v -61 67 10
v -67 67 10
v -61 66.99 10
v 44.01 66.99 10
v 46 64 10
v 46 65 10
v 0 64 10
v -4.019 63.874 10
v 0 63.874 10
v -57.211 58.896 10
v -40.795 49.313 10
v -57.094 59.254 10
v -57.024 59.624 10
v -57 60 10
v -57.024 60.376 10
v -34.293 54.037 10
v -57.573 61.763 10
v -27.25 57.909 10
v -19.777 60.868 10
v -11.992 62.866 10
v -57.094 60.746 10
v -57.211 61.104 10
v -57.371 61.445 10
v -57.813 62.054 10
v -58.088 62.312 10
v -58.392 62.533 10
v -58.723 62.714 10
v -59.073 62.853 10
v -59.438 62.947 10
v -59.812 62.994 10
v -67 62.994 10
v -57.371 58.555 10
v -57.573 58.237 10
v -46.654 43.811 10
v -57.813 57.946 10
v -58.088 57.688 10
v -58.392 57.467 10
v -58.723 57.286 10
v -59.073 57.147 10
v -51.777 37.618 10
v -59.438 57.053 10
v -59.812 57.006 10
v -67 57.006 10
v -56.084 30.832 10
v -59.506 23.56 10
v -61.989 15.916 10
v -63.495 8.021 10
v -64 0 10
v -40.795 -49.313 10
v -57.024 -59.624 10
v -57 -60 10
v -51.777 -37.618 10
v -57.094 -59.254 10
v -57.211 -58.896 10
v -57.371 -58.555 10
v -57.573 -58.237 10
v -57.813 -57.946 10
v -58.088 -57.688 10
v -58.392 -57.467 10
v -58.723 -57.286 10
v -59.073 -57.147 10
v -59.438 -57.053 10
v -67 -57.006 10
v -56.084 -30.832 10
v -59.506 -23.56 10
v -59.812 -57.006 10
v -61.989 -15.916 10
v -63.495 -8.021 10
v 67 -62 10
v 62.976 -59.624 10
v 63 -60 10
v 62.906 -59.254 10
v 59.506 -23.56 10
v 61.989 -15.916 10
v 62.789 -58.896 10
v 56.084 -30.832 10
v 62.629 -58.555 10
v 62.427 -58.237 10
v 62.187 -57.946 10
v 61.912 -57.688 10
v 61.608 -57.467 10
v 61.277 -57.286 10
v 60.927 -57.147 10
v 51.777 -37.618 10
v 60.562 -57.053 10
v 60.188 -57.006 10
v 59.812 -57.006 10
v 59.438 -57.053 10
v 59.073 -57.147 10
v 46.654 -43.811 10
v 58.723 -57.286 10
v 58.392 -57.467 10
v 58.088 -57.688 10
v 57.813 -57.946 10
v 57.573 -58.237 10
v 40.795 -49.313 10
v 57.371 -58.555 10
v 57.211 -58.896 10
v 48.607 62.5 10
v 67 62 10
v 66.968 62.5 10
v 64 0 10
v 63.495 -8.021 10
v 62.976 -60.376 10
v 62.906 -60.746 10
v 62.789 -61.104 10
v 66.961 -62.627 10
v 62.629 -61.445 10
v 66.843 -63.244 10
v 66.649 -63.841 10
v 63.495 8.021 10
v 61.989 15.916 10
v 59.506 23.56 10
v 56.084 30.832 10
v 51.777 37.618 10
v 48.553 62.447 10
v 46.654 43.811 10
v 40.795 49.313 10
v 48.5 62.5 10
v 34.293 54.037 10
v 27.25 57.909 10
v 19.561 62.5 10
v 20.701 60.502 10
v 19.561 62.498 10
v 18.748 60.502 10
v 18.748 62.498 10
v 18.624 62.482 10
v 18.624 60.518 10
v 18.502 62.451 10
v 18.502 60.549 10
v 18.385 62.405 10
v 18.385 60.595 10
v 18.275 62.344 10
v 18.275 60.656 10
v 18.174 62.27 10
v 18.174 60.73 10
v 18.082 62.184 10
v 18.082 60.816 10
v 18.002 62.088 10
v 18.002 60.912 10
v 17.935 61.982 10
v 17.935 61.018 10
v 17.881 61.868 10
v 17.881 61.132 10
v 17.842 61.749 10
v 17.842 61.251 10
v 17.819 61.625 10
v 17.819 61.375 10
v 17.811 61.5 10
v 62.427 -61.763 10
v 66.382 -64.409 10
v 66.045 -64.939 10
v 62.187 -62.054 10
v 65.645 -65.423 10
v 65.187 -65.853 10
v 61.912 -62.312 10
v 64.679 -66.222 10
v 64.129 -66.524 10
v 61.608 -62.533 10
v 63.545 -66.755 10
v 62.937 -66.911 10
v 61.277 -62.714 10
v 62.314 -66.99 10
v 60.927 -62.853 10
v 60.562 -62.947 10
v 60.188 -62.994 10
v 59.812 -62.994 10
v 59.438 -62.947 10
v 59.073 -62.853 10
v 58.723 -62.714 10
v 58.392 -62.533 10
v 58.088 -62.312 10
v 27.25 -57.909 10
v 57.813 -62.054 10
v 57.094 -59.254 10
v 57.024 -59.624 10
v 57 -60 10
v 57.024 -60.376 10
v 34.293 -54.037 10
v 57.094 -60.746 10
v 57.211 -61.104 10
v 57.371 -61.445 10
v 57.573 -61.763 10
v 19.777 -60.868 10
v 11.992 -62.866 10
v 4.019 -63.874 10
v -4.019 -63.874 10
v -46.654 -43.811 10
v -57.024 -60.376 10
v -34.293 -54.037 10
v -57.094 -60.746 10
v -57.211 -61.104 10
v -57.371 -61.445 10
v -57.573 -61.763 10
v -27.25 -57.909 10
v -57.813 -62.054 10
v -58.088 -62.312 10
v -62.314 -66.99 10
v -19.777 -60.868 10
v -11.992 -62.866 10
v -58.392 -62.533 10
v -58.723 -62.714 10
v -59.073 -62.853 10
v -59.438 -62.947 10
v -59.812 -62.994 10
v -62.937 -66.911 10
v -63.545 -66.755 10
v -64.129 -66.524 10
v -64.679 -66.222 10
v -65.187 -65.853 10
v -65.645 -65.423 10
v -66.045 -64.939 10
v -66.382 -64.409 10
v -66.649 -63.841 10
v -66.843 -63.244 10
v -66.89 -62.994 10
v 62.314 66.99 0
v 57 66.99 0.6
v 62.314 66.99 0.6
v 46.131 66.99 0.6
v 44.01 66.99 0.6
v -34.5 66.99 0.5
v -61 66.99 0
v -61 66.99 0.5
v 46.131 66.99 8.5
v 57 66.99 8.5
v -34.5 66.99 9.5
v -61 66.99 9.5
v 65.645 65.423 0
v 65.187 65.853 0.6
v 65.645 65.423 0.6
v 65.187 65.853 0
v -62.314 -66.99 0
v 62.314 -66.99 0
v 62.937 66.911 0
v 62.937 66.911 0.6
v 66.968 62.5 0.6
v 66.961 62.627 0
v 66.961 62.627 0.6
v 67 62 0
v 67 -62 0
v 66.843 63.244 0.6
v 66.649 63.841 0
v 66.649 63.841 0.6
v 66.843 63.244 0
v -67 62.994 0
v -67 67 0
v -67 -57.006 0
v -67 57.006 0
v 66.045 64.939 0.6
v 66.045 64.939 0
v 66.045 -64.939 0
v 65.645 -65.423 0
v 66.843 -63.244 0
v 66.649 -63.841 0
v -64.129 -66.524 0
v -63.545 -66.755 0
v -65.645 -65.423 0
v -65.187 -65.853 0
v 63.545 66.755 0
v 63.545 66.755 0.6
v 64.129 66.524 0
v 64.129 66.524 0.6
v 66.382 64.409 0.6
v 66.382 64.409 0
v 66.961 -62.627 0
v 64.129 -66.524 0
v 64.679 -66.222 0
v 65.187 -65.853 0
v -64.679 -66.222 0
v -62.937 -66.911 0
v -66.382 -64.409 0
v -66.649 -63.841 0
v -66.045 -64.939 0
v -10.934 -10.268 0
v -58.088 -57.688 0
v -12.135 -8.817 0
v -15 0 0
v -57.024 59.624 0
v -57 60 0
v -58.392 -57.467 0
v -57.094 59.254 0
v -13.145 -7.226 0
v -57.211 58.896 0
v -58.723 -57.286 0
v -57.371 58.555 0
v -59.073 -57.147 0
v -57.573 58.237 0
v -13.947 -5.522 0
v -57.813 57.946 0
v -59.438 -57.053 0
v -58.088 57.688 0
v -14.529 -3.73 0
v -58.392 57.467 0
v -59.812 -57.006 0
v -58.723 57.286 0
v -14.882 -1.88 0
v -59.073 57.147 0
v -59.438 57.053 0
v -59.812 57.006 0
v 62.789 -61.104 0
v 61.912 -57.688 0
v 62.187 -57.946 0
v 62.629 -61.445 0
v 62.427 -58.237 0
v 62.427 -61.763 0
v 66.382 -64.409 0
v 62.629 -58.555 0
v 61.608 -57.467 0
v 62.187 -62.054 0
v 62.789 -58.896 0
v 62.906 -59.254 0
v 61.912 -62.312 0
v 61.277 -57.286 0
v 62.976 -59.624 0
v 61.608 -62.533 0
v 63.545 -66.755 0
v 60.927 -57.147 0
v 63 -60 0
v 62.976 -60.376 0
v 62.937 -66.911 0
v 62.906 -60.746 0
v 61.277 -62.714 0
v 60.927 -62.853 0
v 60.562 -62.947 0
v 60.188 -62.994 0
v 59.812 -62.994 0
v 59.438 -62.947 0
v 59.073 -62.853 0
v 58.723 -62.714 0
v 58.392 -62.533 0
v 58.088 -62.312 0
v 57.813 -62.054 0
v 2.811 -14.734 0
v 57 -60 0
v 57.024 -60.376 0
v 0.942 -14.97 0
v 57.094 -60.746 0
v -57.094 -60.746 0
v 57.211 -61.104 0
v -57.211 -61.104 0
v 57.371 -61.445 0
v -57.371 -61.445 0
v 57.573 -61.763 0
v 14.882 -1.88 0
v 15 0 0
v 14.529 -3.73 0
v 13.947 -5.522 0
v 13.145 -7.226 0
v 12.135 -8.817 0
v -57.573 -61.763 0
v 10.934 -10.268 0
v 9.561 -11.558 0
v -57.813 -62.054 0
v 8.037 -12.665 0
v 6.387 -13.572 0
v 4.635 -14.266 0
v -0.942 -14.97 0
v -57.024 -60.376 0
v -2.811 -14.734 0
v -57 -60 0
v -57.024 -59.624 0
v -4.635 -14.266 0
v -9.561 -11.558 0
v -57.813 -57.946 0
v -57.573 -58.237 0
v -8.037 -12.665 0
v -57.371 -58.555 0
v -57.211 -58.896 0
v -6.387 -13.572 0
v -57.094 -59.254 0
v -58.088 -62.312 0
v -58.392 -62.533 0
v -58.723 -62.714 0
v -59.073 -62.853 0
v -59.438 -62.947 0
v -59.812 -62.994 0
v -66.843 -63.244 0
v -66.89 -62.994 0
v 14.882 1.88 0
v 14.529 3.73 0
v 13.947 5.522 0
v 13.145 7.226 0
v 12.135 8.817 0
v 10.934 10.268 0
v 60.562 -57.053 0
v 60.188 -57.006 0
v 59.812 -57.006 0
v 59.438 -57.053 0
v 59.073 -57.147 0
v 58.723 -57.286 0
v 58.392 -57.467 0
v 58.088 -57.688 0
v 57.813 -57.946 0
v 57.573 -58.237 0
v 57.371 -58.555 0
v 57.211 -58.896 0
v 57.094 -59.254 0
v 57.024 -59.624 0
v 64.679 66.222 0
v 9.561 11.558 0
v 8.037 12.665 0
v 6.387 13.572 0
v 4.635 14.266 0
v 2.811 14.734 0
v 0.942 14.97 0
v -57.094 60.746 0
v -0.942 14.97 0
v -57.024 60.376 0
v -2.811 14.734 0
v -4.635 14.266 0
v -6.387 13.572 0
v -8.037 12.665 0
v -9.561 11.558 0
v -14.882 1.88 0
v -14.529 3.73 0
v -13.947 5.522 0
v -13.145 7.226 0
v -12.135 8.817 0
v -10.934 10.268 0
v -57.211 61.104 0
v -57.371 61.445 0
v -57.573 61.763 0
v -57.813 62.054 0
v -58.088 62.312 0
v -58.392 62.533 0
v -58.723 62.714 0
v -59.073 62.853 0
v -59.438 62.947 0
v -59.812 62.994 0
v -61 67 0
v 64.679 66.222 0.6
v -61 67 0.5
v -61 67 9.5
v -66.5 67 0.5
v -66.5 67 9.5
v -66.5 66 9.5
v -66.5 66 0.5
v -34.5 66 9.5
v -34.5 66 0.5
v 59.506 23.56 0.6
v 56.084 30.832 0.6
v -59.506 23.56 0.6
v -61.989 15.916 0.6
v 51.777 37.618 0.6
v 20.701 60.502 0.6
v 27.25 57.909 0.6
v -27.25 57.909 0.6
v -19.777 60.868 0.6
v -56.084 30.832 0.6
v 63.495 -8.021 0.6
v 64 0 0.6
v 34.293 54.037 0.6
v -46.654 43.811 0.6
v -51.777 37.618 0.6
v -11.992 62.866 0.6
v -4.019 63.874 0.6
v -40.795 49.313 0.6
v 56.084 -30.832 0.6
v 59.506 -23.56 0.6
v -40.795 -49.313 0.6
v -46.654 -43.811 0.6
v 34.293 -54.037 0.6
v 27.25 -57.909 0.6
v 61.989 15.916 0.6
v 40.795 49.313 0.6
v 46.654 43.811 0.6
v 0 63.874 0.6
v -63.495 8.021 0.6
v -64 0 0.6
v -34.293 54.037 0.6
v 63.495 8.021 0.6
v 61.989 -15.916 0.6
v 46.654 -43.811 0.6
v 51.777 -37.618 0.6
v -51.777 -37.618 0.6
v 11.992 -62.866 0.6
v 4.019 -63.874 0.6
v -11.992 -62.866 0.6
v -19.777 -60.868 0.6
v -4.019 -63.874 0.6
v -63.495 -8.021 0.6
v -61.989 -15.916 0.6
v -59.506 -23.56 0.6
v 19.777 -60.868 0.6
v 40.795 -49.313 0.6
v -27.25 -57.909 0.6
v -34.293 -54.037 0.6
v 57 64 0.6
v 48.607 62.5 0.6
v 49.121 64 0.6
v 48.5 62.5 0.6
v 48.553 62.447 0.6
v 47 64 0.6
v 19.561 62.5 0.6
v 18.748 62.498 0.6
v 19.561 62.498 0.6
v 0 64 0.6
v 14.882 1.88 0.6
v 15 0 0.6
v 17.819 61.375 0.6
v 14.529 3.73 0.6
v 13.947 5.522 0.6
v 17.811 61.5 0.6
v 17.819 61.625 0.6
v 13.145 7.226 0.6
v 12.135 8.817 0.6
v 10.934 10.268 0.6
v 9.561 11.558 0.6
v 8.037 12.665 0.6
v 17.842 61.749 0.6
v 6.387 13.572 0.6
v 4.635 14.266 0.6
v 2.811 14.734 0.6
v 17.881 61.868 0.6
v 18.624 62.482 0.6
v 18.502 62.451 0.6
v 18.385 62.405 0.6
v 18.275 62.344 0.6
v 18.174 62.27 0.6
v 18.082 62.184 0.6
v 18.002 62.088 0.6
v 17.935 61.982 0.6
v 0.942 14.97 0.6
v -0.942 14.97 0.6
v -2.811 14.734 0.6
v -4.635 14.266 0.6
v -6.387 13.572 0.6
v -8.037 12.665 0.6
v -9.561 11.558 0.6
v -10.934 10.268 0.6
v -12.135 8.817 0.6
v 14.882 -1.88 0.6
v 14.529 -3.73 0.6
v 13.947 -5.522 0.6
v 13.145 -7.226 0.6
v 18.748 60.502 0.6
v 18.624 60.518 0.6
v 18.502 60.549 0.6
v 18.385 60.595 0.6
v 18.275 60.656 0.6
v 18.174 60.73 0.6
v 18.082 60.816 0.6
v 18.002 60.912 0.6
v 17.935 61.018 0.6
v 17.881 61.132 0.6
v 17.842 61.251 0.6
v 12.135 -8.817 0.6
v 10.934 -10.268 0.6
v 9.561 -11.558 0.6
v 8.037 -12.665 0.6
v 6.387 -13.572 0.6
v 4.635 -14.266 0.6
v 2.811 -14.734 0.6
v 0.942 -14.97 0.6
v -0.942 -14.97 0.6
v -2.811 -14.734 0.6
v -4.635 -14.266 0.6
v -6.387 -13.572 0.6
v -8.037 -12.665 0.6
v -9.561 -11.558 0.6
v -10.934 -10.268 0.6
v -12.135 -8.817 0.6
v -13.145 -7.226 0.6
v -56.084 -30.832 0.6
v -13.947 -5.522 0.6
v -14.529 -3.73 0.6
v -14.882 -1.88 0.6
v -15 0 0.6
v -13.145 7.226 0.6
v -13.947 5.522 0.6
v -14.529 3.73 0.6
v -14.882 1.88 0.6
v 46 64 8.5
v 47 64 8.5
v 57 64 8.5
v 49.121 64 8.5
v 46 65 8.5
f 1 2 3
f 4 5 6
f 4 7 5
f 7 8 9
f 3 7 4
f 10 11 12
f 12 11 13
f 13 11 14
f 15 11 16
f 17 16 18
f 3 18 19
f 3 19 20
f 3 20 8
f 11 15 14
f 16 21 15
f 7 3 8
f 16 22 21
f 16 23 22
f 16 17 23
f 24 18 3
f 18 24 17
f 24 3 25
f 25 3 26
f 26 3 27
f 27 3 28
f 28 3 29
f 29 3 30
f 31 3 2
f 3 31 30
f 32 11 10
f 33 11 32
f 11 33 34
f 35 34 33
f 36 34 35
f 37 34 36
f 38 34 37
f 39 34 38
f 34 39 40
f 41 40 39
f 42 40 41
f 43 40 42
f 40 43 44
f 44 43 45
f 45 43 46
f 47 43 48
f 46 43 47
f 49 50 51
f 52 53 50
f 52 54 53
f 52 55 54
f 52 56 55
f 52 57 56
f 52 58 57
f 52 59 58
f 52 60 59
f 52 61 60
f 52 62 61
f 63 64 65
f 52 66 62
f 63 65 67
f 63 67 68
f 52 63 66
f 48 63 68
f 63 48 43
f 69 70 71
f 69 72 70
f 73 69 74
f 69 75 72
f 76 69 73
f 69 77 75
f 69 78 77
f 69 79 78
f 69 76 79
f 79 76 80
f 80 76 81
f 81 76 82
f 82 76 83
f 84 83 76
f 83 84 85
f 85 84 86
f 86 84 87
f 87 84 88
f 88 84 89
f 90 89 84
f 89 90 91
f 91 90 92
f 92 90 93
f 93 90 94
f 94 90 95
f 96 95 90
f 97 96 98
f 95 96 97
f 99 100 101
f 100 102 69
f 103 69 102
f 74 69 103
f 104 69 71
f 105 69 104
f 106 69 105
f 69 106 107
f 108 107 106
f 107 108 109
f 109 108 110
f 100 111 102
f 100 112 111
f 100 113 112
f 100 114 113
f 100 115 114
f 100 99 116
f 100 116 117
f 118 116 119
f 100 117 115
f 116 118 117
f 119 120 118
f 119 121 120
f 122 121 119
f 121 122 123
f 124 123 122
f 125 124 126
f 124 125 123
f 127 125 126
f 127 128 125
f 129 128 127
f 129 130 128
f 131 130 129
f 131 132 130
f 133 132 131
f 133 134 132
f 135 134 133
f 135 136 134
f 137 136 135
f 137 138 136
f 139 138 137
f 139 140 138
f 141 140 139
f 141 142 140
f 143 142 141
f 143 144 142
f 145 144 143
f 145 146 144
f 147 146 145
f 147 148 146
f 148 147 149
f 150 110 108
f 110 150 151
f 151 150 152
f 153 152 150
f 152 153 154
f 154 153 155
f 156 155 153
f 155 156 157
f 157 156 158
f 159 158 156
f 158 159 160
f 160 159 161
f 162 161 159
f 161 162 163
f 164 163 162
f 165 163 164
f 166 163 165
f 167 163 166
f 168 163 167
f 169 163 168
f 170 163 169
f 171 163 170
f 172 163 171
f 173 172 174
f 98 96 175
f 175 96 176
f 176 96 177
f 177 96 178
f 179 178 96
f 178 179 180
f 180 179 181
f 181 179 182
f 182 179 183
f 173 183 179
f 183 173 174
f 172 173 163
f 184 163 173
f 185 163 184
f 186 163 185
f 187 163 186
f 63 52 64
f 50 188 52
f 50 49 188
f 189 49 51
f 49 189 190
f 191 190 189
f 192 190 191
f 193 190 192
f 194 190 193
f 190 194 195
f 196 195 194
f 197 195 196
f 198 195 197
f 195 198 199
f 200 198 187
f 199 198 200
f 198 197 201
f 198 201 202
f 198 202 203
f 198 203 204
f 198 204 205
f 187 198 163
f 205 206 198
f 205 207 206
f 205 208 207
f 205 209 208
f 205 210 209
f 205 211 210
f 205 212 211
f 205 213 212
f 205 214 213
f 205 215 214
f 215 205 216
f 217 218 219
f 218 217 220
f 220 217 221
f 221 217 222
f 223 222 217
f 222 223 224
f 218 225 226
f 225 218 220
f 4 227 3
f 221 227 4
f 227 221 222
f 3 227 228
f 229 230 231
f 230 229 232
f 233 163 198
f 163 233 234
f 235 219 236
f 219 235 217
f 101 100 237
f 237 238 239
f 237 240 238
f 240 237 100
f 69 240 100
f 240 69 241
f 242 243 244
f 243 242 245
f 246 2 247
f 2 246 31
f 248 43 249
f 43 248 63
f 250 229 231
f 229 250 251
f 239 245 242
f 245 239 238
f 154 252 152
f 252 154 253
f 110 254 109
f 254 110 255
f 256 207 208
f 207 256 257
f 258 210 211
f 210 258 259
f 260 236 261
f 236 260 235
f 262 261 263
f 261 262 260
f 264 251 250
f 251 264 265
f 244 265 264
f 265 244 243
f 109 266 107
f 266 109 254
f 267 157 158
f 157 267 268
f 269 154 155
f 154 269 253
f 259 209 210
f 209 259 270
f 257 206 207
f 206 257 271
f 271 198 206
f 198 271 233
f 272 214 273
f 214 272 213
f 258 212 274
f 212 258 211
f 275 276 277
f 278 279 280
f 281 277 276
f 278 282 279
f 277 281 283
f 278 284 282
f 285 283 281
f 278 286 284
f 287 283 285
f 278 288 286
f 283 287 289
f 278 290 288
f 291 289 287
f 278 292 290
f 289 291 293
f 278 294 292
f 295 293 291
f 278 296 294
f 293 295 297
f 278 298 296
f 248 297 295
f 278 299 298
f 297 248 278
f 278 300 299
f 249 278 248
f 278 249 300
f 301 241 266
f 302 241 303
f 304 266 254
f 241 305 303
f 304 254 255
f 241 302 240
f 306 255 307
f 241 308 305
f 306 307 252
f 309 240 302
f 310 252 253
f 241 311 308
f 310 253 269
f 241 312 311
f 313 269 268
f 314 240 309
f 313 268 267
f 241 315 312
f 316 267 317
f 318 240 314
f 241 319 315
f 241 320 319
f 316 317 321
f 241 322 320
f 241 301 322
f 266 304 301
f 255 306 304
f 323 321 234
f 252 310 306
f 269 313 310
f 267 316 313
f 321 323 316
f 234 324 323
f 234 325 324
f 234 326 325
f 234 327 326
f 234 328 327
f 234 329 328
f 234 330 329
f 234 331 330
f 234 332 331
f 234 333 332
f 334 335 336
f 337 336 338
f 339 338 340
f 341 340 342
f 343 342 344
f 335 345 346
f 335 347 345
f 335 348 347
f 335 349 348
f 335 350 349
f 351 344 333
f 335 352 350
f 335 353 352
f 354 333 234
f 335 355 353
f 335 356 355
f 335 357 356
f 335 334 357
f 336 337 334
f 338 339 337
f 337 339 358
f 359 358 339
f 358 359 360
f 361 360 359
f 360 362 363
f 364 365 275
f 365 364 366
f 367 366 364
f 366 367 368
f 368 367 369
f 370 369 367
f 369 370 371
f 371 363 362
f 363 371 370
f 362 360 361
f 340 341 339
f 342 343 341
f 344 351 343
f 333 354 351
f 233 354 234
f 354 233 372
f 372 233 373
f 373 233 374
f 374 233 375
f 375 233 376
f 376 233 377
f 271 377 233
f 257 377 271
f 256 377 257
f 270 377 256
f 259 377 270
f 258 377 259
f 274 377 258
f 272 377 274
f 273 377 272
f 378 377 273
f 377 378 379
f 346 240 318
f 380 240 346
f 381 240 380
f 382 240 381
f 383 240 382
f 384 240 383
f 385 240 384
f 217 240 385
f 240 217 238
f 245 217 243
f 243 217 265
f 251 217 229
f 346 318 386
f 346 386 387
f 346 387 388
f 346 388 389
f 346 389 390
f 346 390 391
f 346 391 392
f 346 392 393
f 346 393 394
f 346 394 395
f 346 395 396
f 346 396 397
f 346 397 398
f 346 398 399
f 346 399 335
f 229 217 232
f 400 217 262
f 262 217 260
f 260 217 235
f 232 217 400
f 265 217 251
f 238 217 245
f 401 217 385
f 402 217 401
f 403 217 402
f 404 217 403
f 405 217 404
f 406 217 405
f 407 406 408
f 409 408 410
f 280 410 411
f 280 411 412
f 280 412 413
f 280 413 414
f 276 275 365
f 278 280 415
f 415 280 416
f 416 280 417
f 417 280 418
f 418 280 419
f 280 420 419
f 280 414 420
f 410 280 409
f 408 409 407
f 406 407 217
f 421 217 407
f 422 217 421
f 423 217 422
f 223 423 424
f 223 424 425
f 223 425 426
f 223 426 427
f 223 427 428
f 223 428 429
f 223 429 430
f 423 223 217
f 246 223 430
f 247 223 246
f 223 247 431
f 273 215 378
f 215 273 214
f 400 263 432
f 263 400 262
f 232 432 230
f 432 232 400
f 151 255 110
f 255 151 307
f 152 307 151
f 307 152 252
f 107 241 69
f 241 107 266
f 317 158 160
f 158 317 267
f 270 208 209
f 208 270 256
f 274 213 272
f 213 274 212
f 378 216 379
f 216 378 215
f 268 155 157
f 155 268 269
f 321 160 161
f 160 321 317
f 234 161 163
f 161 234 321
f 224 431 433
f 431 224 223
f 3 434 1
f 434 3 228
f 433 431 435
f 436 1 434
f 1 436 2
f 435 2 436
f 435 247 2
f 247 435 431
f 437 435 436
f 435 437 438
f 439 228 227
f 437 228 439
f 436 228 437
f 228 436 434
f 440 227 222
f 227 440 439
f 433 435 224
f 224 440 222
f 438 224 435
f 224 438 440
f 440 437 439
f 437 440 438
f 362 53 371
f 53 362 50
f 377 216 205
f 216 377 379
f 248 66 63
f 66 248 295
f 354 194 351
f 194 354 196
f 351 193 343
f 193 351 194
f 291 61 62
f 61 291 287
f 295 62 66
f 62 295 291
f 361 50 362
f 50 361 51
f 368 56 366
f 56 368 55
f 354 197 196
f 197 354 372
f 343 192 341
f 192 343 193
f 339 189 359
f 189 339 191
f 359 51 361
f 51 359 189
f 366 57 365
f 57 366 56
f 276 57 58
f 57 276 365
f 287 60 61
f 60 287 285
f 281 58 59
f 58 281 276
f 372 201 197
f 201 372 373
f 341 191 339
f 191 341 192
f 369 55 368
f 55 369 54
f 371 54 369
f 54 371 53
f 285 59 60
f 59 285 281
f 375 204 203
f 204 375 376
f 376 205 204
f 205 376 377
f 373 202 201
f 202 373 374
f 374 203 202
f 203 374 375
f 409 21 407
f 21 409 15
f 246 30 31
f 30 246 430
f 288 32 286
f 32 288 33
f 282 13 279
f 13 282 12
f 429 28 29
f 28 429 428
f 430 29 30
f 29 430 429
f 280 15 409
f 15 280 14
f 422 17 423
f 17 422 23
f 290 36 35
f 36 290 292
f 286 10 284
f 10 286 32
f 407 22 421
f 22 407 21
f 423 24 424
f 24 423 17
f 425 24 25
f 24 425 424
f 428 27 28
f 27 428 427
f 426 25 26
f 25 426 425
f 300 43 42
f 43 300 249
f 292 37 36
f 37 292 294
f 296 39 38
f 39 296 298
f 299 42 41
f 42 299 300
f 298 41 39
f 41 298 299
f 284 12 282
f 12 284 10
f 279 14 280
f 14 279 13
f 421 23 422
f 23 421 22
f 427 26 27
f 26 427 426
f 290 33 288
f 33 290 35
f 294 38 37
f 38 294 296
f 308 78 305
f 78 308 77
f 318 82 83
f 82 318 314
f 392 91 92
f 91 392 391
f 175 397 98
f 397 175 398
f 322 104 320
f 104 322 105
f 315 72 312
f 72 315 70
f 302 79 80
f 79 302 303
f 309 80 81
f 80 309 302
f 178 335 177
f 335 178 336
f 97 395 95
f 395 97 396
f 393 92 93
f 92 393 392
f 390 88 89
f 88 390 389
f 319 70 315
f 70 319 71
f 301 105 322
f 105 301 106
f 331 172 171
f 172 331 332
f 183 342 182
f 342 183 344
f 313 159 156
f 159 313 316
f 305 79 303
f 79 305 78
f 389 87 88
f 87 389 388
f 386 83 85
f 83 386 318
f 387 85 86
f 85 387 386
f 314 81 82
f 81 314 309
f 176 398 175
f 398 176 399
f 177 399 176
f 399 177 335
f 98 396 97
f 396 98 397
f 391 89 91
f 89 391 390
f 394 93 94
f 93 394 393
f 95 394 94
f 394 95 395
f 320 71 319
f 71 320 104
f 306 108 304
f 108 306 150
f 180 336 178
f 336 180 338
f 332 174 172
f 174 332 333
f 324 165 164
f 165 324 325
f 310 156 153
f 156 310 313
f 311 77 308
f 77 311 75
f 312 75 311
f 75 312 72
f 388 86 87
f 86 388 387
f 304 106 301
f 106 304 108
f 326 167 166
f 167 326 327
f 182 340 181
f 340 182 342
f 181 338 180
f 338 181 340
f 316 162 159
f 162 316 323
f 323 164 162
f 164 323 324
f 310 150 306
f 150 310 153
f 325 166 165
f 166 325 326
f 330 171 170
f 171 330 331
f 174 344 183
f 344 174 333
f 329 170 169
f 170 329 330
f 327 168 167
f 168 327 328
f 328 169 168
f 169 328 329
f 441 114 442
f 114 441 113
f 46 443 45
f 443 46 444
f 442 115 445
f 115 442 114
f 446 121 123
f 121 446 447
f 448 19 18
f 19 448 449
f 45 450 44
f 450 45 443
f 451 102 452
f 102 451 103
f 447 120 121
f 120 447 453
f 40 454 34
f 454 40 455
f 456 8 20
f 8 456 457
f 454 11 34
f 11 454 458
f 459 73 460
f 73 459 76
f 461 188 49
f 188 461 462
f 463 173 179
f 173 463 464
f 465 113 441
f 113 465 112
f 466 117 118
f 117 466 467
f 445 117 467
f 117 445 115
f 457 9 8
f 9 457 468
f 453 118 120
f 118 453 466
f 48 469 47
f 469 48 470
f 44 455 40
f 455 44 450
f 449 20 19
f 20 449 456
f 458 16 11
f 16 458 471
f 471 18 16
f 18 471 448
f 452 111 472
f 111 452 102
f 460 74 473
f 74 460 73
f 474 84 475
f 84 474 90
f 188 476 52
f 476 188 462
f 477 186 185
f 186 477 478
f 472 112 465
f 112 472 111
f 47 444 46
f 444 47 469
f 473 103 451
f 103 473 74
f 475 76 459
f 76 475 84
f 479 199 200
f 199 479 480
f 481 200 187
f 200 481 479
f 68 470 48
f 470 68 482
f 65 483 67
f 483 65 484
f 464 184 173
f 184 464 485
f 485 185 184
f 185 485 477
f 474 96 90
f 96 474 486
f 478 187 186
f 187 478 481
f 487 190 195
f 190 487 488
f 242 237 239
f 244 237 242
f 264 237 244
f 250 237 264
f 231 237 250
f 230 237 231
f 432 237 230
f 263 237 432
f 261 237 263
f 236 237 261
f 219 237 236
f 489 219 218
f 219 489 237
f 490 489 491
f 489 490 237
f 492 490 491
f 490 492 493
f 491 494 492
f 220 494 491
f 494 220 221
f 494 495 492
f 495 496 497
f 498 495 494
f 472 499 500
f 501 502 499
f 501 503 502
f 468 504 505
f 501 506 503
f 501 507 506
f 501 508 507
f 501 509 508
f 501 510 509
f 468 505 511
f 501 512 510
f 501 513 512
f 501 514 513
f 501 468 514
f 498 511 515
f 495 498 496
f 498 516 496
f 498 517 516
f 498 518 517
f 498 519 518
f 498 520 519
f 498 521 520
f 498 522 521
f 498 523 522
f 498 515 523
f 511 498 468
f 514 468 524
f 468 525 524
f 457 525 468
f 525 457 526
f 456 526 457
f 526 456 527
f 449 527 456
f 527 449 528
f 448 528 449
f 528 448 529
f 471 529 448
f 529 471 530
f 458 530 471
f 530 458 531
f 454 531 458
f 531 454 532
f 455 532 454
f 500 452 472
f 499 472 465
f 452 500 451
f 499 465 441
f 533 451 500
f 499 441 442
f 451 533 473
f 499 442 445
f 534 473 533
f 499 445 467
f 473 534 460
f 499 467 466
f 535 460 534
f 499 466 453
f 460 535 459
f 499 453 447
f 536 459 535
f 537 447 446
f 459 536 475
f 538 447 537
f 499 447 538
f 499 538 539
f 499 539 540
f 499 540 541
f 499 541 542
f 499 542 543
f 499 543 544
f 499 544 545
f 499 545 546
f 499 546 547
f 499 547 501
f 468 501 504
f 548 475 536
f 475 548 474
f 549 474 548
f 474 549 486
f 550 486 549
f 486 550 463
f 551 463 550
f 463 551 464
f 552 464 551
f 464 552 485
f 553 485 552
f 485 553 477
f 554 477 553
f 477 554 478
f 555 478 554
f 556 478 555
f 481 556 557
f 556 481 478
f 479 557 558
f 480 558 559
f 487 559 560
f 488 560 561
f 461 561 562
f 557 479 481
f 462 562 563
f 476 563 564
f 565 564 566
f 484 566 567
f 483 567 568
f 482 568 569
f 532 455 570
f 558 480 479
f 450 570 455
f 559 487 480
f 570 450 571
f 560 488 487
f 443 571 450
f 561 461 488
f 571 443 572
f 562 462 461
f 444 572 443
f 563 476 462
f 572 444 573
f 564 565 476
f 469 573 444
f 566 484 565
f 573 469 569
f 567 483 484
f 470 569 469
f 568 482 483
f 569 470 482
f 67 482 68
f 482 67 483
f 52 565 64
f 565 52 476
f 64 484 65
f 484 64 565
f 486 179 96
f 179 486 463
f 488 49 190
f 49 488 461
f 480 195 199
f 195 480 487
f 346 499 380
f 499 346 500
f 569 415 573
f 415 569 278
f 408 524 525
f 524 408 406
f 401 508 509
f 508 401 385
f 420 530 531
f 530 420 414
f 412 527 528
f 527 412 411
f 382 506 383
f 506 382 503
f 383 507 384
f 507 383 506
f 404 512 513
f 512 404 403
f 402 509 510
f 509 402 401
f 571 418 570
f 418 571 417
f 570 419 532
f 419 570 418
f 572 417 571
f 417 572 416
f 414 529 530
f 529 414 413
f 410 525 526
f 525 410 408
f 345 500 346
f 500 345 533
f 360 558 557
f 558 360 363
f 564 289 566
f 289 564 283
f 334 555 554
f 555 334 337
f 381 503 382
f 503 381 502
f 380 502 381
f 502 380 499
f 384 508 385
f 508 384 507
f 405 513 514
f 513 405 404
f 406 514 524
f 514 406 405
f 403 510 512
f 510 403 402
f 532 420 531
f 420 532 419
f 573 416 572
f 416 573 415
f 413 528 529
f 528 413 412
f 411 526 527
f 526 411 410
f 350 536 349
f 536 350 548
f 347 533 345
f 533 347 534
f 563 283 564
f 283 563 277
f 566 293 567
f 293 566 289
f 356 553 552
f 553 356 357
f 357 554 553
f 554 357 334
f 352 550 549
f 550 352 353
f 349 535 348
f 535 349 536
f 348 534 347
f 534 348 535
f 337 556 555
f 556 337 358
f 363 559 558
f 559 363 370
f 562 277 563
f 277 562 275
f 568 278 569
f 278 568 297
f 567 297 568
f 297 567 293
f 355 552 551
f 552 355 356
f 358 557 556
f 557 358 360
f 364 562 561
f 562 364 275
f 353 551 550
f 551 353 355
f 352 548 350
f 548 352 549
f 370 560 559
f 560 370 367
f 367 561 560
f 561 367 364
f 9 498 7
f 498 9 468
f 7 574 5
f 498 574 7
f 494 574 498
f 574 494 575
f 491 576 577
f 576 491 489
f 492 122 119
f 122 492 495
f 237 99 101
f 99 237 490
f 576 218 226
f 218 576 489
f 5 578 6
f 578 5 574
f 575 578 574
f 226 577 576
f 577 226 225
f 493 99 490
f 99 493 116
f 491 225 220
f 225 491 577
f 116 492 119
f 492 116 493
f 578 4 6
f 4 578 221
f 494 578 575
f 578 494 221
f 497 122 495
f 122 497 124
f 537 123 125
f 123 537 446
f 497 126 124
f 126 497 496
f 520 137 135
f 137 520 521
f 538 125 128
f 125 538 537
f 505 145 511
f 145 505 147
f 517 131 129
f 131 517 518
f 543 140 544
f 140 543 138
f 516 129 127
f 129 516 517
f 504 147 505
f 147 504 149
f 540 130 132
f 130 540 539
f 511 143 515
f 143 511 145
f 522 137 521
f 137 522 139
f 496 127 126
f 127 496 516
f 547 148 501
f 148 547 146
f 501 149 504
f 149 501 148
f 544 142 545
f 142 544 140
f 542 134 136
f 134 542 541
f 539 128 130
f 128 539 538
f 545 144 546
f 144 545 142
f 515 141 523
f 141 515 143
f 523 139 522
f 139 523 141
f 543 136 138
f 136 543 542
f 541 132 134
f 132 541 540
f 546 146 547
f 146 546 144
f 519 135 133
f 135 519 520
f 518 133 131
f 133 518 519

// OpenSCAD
$fn = 50;


union() {
	difference() {
		union() {
			translate(v = [0, 0, 0]) {
				rotate(a = [0, 0, 0]) {
					hull() {
						translate(v = [-62.0000000000, 62.0000000000, 0]) {
							rotate(a = [0, 0, 0]) {
								translate(v = [0, 0, 0]) {
									rotate(a = [0, 0, 0]) {
										cylinder(h = 10, r = 5);
									}
								}
							}
						}
						translate(v = [62.0000000000, 62.0000000000, 0]) {
							rotate(a = [0, 0, 0]) {
								translate(v = [0, 0, 0]) {
									rotate(a = [0, 0, 0]) {
										cylinder(h = 10, r = 5);
									}
								}
							}
						}
						translate(v = [-62.0000000000, -62.0000000000, 0]) {
							rotate(a = [0, 0, 0]) {
								translate(v = [0, 0, 0]) {
									rotate(a = [0, 0, 0]) {
										cylinder(h = 10, r = 5);
									}
								}
							}
						}
						translate(v = [62.0000000000, -62.0000000000, 0]) {
							rotate(a = [0, 0, 0]) {
								translate(v = [0, 0, 0]) {
									rotate(a = [0, 0, 0]) {
										cylinder(h = 10, r = 5);
									}
								}
							}
						}
					}
				}
			}
			translate(v = [-67.0000000000, 61.0000000000, 0]) {
				rotate(a = [0, 0, 0]) {
					cube(size = [6, 6, 10]);
				}
			}
		}
		union() {
			#translate(v = [-66.5000000000, 66.0000000000, 0.5000000000]) {
				rotate(a = [0, 0, 0]) {
					cube(size = [32, 1, 9.0000000000]);
				}
			}
			translate(v = [-67.5000000000, -60.0000000000, -125]) {
				rotate(a = [0, 0, 0]) {
					hull() {
						translate(v = [7.5000000000, 0, 0]) {
							rotate(a = [0, 0, 0]) {
								translate(v = [0, 0, 0]) {
									rotate(a = [0, 0, 0]) {
										cylinder(h = 250, r = 3.0000000000);
									}
								}
							}
						}
						translate(v = [-7.5000000000, 0, 0]) {
							rotate(a = [0, 0, 0]) {
								translate(v = [0, 0, 0]) {
									rotate(a = [0, 0, 0]) {
										cylinder(h = 250, r = 3.0000000000);
									}
								}
							}
						}
					}
				}
			}
			translate(v = [-67.5000000000, 60.0000000000, -125]) {
				rotate(a = [0, 0, 0]) {
					hull() {
						translate(v = [7.5000000000, 0, 0]) {
							rotate(a = [0, 0, 0]) {
								translate(v = [0, 0, 0]) {
									rotate(a = [0, 0, 0]) {
										cylinder(h = 250, r = 3.0000000000);
									}
								}
							}
						}
						translate(v = [-7.5000000000, 0, 0]) {
							rotate(a = [0, 0, 0]) {
								translate(v = [0, 0, 0]) {
									rotate(a = [0, 0, 0]) {
										cylinder(h = 250, r = 3.0000000000);
									}
								}
							}
						}
					}
				}
			}
			translate(v = [60.0000000000, -60.0000000000, -125.0000000000]) {
				rotate(a = [0, 0, 0]) {
					cylinder(h = 250, r = 3.0000000000);
				}
			}
			translate(v = [0, 0, 0.6000000000]) {
				rotate(a = [0, 0, 0]) {
					cylinder(h = 12.4000000000, r = 64.0000000000);
				}
			}
			translate(v = [0, 0, -5.0000000000]) {
				rotate(a = [0, 0, 0]) {
					cylinder(h = 10, r = 15.0000000000);
				}
			}
			translate(v = [0.0000000000, 62.5000000000, 0.6000000000]) {
				rotate(a = [0, 0, 0]) {
					cube(size = [67.0000000000, 1.5000000000, 12.4000000000]);
				}
			}
			translate(v = [57.0000000000, 62.5000000000, 0.6000000000]) {
				rotate(a = [0, 0, 0]) {
					cube(size = [10, 4.5000000000, 12.4000000000]);
				}
			}
			translate(v = [46.0000000000, 62.5000000000, 8.5000000000]) {
				rotate(a = [0, 0, 0]) {
					cube(size = [21, 4.5000000000, 1.5000000000]);
				}
			}
			translate(v = [43.2500000000, 67.7500000000, 0.6000000000]) {
				rotate(a = [0, 0, -45]) {
					cube(size = [7.5000000000, 1.5000000000, 12.4000000000]);
				}
			}
			translate(v = [12.0610000000, 60.5000000000, 0.6000000000]) {
				rotate(a = [0, 0, 0]) {
					cube(size = [7.5000000000, 2, 9.4000000000]);
				}
			}
		}
	}
	union() {
		translate(v = [21.3110000000, 61.5000000000, 0]) {
			rotate(a = [0, 0, 0]) {
				hull() {
					translate(v = [2.5000000000, 0, 0]) {
						rotate(a = [0, 0, 0]) {
							#translate(v = [0, 0, 0]) {
								rotate(a = [0, 0, 0]) {
									cylinder(h = 10, r = 1.0000000000);
								}
							}
						}
					}
					translate(v = [-2.5000000000, 0, 0]) {
						rotate(a = [0, 0, 0]) {
							#translate(v = [0, 0, 0]) {
								rotate(a = [0, 0, 0]) {
									cylinder(h = 10, r = 1.0000000000);
								}
							}
						}
					}
				}
			}
		}
	}
}
